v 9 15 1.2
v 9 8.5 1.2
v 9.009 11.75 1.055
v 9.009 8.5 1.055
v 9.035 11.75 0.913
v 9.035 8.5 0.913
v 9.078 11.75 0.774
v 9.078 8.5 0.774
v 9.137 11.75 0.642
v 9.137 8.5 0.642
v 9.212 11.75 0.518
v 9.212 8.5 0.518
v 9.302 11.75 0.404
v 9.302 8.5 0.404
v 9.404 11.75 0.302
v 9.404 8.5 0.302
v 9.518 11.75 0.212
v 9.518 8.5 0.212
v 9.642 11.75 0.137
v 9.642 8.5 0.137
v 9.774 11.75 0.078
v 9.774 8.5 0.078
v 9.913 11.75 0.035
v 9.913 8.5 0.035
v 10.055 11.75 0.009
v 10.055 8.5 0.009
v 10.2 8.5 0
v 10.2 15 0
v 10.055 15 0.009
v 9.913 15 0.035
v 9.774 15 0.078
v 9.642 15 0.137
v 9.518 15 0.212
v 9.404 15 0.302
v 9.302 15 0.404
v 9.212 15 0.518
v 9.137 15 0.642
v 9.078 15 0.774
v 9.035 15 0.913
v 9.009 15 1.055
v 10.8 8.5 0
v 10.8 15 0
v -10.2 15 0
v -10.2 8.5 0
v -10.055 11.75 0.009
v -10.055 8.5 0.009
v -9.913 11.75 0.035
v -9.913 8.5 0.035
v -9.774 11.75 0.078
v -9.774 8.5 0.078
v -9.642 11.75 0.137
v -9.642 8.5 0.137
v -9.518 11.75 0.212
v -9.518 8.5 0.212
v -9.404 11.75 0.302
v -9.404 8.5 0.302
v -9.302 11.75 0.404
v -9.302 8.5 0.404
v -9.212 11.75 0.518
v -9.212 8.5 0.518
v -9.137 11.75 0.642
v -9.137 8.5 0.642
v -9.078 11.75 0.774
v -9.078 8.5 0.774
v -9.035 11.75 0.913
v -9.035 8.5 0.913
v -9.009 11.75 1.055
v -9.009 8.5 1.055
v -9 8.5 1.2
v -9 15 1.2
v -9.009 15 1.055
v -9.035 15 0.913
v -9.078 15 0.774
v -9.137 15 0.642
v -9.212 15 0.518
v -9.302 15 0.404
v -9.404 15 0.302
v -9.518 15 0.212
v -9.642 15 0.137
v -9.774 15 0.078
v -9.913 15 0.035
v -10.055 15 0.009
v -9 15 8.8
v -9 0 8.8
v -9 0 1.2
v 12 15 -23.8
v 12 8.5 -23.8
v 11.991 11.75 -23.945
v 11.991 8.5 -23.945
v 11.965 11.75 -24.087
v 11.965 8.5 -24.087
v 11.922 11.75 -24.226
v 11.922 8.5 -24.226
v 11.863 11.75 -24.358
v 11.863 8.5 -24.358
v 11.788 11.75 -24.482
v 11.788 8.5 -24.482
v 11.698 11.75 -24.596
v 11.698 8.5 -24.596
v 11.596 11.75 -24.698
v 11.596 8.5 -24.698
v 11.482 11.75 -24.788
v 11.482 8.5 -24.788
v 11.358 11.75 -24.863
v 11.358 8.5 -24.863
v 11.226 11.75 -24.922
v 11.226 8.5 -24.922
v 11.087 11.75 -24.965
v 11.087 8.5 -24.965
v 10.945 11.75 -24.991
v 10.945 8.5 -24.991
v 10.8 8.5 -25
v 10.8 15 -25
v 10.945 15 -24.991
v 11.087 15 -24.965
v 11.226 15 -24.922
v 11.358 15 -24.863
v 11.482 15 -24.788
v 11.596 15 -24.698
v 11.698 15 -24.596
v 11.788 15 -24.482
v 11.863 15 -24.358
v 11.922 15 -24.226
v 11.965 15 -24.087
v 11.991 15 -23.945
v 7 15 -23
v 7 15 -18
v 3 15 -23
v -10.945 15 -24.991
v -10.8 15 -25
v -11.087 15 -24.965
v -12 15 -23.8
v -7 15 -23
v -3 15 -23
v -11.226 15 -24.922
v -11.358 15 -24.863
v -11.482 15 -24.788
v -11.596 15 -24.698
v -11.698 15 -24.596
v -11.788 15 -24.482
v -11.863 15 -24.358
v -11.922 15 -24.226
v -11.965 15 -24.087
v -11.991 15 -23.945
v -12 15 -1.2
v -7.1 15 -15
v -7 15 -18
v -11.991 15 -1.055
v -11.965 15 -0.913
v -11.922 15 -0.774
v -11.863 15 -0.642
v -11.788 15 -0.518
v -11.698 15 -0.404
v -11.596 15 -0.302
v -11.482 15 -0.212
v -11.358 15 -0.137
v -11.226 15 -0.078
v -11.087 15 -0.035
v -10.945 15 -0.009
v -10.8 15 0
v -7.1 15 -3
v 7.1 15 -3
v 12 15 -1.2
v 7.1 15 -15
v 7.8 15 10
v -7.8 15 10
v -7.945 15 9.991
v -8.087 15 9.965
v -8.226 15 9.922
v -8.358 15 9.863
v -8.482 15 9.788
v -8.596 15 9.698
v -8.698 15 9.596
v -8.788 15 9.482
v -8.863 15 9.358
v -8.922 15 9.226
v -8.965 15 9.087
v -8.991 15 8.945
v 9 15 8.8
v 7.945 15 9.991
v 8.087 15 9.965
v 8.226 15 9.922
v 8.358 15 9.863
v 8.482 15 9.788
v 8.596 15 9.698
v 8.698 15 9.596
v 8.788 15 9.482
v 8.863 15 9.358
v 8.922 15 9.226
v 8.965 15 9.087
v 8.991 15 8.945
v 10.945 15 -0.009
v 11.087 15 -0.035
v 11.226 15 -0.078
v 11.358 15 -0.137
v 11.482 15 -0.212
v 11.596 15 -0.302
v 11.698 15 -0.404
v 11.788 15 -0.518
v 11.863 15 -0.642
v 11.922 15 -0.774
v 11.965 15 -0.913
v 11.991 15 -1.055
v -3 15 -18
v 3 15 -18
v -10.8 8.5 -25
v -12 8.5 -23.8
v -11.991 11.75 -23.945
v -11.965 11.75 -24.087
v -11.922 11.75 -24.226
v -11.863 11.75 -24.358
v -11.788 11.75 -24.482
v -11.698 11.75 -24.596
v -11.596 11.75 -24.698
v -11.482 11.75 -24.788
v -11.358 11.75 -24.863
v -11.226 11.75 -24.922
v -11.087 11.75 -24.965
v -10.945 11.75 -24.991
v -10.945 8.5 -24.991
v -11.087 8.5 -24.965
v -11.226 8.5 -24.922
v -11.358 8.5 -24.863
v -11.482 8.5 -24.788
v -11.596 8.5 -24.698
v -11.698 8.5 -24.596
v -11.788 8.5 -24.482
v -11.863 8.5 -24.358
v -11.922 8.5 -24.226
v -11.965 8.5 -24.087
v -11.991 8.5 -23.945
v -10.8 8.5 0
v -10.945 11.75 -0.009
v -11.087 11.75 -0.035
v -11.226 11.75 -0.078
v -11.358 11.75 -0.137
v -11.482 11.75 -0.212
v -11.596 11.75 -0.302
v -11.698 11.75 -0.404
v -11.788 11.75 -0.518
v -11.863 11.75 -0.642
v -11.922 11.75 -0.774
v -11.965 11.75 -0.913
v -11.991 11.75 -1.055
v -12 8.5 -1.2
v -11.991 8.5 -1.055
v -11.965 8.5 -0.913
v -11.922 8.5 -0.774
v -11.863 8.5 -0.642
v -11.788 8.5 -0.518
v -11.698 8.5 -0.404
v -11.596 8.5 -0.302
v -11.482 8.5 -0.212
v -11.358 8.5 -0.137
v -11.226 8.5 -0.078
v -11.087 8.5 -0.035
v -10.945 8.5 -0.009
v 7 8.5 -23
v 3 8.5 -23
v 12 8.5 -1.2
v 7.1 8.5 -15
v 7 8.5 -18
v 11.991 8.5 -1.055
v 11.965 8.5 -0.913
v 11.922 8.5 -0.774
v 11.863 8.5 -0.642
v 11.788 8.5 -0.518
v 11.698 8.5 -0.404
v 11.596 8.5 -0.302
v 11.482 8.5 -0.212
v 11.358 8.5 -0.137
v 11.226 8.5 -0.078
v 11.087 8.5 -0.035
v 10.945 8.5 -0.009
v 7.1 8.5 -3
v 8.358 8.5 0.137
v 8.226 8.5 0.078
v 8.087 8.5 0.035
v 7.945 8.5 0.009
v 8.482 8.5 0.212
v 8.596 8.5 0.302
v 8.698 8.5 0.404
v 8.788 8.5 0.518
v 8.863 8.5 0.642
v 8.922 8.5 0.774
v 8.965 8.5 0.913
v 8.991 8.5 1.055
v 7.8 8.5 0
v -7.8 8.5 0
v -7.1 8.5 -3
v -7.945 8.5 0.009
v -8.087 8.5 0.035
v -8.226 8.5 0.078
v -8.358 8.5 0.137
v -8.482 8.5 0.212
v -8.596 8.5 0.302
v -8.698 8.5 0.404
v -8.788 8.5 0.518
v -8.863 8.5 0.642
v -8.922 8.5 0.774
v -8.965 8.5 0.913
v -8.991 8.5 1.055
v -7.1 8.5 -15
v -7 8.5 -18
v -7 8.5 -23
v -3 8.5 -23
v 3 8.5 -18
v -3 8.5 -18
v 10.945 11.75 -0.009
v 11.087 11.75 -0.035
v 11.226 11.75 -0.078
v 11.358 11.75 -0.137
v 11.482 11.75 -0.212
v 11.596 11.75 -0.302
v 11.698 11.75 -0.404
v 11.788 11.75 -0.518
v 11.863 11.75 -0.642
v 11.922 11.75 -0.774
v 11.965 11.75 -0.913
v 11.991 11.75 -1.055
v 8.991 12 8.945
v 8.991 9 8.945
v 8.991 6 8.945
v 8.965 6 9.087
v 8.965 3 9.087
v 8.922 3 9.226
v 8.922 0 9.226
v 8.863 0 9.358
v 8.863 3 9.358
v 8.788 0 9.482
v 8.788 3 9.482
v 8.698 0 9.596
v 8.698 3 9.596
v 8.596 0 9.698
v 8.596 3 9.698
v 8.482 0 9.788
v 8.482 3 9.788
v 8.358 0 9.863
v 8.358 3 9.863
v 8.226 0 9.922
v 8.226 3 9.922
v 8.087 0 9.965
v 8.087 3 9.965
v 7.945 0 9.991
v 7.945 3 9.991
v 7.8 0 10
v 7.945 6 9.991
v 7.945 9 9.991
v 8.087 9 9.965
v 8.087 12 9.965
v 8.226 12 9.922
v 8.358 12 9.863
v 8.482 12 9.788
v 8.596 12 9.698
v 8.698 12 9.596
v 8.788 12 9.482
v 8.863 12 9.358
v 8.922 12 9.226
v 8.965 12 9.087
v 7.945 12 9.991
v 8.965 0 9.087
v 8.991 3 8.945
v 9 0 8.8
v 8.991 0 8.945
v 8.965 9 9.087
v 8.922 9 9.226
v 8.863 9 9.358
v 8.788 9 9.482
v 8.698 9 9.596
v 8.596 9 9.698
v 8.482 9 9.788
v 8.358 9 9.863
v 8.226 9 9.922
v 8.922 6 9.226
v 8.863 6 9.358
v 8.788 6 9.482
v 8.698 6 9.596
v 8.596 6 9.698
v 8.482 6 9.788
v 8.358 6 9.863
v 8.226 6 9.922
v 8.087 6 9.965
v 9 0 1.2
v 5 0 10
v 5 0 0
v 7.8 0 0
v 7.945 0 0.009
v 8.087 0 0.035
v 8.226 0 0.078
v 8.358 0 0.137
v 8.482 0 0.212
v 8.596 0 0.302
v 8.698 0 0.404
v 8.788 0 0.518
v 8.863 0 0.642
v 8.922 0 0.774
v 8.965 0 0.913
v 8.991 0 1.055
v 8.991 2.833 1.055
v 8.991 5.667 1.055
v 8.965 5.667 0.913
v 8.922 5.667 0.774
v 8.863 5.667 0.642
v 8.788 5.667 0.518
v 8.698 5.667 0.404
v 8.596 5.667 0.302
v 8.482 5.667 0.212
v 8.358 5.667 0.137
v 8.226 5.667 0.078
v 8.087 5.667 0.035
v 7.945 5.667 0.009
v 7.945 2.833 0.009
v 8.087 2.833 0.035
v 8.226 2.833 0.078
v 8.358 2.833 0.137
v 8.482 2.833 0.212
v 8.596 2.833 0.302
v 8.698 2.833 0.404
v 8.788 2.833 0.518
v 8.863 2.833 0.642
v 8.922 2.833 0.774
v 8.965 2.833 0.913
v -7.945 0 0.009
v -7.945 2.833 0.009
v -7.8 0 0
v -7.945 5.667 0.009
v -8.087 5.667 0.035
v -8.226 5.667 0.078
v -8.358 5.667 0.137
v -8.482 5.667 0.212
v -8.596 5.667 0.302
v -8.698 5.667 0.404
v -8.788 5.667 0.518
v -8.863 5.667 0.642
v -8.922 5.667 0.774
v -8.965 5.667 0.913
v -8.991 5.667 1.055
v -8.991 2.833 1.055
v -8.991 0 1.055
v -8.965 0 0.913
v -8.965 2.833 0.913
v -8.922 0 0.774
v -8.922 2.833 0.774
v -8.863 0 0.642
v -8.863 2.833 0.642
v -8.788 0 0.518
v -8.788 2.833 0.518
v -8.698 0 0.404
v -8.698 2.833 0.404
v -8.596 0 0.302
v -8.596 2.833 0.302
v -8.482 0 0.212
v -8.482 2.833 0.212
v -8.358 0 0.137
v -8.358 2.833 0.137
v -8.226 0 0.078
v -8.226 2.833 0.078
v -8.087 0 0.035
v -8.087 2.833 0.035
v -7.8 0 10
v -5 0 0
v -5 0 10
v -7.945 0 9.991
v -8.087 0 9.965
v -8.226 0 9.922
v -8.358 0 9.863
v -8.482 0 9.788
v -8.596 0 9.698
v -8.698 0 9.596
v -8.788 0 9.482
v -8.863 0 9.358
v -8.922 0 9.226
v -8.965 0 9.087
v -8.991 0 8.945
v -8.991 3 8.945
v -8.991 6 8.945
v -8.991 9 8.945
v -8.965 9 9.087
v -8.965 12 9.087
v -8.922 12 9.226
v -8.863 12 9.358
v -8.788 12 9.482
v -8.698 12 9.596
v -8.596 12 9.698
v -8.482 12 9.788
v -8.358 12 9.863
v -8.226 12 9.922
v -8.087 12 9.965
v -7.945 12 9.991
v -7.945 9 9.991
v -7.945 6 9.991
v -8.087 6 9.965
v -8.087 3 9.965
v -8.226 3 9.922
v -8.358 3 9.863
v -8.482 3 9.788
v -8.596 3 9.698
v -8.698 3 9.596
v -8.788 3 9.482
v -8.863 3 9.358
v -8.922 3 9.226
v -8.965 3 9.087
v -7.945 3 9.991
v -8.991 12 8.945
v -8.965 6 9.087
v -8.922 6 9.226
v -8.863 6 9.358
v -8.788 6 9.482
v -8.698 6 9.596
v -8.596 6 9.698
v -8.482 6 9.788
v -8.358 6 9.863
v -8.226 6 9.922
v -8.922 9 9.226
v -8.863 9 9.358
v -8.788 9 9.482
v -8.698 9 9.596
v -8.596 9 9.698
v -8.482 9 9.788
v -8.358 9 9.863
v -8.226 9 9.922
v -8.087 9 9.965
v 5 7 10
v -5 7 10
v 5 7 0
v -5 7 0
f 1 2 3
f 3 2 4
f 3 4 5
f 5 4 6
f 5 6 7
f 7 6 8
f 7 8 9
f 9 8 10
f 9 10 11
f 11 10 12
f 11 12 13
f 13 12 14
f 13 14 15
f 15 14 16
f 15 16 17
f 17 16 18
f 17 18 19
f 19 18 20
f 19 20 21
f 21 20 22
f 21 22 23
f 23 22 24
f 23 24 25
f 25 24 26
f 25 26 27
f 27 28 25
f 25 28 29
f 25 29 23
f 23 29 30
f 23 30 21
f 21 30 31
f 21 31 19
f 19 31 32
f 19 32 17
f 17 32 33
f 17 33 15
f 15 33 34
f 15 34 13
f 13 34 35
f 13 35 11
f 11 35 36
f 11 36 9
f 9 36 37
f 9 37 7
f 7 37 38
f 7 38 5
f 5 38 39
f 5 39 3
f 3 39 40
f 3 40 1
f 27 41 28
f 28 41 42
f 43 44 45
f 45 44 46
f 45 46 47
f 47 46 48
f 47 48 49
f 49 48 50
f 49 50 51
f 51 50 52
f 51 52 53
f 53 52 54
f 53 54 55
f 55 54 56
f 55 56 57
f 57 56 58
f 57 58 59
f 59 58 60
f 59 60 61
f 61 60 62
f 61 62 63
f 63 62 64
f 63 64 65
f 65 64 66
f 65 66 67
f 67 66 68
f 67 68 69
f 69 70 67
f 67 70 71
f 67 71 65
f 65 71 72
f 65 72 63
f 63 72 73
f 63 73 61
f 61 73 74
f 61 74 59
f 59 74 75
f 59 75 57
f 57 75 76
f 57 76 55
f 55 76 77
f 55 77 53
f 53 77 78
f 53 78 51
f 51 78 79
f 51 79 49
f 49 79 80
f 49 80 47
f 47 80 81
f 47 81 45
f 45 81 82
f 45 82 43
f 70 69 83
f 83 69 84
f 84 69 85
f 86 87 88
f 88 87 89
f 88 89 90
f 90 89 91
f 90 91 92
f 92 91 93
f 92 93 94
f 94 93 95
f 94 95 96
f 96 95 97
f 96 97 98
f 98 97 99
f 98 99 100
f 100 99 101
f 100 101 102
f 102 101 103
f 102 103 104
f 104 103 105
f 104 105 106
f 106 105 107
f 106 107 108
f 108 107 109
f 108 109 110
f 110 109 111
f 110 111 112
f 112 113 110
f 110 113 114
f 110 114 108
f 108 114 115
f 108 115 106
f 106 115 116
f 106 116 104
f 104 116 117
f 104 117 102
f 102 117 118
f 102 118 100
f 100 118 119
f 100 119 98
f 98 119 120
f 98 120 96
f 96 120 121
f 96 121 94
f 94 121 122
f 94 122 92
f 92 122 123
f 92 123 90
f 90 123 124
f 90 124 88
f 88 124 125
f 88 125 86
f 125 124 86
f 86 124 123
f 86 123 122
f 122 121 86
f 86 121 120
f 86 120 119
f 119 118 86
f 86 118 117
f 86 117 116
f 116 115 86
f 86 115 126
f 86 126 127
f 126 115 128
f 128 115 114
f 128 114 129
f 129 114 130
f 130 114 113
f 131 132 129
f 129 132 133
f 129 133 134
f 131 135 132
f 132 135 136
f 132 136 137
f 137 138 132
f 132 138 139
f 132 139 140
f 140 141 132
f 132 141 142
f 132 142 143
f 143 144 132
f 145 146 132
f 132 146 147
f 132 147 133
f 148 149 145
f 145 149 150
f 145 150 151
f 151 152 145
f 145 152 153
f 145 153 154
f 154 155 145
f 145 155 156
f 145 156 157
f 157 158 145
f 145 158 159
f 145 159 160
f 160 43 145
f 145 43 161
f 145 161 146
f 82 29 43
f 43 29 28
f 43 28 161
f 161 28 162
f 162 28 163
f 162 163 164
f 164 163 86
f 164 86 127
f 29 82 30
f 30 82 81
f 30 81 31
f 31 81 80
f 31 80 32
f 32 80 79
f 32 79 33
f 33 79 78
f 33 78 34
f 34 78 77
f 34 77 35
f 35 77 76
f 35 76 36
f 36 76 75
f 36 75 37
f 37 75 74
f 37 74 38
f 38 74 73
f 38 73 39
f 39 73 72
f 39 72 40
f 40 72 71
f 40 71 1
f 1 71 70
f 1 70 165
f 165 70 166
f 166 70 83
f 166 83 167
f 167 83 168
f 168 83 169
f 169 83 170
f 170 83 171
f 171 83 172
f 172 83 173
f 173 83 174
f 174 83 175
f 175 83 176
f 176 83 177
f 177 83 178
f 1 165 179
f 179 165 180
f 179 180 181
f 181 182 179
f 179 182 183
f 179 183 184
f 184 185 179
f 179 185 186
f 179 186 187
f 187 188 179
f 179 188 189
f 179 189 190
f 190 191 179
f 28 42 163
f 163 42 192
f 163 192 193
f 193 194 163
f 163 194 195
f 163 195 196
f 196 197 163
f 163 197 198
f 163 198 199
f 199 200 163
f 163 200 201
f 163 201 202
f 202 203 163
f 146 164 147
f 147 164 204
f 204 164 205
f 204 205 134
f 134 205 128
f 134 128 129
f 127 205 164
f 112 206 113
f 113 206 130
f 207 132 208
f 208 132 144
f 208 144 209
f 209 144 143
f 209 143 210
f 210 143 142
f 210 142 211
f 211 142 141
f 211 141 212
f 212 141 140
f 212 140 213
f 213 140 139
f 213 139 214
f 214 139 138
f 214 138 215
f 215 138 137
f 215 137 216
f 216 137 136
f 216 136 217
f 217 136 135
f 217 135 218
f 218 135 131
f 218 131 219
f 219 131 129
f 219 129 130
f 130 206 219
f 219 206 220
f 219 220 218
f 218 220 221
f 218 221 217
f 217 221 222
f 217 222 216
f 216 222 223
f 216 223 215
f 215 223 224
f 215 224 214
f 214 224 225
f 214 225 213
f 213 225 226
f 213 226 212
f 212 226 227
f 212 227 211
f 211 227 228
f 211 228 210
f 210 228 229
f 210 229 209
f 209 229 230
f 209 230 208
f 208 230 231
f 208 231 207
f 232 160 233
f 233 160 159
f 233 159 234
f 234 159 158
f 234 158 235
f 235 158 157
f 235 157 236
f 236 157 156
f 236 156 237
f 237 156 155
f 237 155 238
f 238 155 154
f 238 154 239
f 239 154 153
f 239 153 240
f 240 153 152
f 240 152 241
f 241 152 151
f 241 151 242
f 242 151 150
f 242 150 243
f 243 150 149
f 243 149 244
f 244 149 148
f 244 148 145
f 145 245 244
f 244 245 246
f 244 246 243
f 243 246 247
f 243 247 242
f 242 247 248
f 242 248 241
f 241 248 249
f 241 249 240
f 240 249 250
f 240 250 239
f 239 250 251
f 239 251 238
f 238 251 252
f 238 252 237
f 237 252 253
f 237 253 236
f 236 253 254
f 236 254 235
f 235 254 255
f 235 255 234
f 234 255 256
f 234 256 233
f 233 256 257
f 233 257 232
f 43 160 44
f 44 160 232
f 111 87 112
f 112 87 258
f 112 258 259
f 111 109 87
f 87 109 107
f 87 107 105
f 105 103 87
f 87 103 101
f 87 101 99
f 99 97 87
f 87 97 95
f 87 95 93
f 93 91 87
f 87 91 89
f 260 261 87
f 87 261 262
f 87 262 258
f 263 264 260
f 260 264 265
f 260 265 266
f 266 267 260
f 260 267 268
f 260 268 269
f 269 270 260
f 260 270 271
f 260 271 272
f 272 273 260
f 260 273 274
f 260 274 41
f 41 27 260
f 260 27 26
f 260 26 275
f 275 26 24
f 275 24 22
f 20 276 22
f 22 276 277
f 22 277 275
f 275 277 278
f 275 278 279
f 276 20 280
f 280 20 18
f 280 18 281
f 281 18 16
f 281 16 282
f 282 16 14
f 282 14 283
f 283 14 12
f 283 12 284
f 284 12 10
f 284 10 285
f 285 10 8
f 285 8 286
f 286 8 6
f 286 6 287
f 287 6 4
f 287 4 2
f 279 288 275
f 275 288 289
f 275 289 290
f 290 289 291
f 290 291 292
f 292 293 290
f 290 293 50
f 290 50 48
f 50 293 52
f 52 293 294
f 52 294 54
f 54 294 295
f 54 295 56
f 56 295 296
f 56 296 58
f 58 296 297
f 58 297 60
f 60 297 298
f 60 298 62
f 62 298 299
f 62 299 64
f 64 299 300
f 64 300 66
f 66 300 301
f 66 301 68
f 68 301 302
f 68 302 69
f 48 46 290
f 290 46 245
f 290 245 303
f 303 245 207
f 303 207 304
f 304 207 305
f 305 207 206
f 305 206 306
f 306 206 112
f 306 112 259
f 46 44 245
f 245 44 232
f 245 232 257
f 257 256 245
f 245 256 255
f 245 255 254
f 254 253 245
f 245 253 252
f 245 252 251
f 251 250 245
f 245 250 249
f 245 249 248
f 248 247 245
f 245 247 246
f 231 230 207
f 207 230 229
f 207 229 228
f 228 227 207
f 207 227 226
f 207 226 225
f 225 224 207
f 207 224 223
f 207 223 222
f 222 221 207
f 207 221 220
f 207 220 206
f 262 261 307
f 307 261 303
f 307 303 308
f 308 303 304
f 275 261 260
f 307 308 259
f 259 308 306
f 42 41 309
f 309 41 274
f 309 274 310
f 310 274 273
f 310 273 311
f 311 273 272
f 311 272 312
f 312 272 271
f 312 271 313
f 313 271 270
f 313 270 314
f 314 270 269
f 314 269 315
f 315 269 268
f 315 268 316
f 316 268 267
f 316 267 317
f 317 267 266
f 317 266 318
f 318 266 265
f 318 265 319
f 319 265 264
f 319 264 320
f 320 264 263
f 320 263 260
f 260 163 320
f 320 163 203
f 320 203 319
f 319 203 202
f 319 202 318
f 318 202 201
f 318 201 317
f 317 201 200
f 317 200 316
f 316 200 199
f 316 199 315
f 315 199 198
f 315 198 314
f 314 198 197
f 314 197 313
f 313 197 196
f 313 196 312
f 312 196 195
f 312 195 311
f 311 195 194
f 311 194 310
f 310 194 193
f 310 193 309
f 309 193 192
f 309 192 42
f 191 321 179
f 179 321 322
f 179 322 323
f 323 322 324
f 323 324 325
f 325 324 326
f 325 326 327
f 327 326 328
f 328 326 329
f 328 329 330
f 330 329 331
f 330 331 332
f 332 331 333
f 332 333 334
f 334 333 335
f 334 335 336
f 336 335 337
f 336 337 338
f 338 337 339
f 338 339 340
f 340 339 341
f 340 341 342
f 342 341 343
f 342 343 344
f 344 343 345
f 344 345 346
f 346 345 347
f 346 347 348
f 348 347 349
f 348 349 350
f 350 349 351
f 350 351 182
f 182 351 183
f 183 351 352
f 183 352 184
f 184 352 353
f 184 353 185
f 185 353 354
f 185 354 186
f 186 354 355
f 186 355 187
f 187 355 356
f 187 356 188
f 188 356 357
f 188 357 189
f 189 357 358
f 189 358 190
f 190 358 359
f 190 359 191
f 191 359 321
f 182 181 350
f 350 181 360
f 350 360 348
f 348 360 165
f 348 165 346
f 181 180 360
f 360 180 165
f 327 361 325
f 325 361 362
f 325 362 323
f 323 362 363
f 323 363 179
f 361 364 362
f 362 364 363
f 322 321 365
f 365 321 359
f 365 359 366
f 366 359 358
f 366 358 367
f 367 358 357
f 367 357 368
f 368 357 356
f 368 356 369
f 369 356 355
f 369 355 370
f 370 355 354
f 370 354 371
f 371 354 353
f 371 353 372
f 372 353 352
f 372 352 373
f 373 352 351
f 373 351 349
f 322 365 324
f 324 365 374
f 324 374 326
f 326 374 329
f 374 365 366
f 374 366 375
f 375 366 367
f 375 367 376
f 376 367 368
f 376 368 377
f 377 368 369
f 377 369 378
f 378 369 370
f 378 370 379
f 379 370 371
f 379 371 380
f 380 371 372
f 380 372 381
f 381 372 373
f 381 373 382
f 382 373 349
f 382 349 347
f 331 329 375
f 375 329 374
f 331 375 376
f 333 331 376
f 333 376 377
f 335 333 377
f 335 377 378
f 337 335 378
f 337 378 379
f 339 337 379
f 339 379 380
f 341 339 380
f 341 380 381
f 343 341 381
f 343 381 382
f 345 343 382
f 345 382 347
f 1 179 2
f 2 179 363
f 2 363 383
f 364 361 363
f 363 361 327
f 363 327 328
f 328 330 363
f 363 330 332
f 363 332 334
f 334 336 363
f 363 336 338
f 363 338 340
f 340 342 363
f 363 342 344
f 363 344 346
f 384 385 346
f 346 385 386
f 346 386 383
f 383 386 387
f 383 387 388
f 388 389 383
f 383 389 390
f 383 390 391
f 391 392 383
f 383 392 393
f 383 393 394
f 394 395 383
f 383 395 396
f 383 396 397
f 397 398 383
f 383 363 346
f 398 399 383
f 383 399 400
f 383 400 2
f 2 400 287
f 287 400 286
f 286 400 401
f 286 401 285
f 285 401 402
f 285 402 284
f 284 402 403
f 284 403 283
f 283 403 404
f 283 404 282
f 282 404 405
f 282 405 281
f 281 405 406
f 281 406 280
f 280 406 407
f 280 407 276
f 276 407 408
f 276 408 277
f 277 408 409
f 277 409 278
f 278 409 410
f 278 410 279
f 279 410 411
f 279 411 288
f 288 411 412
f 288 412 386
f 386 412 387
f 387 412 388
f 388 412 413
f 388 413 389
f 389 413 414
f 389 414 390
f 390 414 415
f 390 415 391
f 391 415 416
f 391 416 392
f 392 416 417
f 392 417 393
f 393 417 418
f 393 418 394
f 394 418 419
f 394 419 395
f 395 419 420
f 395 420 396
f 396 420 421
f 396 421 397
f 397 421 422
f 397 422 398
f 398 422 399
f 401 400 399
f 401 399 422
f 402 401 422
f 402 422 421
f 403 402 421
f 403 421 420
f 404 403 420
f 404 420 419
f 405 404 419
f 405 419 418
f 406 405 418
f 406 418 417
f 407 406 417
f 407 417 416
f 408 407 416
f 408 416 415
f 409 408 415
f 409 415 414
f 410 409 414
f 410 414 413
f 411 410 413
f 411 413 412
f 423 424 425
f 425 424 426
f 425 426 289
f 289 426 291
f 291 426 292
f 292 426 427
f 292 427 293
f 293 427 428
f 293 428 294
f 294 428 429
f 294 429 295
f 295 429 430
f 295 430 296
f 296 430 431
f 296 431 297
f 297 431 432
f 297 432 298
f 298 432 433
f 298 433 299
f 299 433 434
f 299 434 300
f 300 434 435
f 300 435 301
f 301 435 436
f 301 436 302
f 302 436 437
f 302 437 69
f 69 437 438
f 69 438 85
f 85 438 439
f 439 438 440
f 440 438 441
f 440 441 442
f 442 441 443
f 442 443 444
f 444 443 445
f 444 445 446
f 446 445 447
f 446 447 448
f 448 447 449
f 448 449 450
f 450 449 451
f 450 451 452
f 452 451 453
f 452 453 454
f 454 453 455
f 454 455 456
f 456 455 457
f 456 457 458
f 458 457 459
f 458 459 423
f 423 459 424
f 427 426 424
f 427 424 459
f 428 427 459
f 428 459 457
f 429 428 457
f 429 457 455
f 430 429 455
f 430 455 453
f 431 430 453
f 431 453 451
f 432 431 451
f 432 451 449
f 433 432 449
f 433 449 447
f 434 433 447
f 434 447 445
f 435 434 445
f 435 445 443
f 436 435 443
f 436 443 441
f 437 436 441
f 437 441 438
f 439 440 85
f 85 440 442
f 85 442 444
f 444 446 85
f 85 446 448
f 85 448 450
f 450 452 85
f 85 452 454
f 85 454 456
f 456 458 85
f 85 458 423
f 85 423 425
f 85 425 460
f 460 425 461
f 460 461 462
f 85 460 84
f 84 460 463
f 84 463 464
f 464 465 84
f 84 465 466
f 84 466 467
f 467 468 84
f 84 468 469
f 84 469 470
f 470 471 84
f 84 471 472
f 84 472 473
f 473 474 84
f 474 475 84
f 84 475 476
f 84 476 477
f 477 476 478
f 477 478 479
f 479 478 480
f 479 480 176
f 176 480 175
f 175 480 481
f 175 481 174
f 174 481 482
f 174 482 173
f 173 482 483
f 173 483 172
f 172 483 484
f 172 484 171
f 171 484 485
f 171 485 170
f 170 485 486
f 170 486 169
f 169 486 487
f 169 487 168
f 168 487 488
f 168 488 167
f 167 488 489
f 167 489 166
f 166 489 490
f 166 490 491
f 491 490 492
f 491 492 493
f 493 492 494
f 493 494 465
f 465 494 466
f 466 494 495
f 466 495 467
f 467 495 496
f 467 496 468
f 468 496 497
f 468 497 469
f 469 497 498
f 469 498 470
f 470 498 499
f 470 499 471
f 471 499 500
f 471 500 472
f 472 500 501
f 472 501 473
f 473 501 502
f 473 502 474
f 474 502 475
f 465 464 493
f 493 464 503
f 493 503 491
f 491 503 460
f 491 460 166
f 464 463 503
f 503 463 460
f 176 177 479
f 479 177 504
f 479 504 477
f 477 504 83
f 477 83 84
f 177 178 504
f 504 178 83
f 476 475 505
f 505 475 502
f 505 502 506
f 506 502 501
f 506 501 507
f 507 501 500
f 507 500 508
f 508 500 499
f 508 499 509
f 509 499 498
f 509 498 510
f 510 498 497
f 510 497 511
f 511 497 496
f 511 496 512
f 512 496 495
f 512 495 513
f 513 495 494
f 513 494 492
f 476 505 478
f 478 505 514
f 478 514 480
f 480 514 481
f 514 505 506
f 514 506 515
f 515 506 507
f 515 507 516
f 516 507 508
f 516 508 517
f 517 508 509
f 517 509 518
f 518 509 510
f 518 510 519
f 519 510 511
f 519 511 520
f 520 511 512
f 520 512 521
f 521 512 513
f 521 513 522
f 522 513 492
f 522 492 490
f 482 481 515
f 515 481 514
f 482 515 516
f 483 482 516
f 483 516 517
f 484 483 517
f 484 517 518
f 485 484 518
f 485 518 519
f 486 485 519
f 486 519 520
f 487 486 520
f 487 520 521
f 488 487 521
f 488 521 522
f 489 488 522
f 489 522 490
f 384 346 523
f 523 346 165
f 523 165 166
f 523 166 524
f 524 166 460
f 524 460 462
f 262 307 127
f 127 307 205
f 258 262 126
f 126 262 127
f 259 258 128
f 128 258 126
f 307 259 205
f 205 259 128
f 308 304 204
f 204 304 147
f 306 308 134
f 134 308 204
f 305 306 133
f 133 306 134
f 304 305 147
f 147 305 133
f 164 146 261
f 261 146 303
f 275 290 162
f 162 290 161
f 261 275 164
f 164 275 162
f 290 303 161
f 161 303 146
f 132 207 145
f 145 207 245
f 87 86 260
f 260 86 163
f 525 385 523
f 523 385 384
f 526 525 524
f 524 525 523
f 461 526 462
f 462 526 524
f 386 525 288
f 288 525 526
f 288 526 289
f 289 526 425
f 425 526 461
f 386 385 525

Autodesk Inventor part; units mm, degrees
ref_plane "YZ Plane" through (0, 0, 0) normal (1, 0, 0) x (0, 1, 0)
ref_plane "XZ Plane" through (0, 0, 0) normal (0, 1, 0) x (-1, 0, 0)
ref_plane "XY Plane" through (0, 0, 0) normal (0, 0, 1) x (1, 0, 0)
sketch "Náčrt1" plane through (0, 0, 0) normal (0, 0, 1) x (1, 0, 0)
  line L0 (-9, 0) -> (-5, 0)
  line L1 (-5, 0) -> (-5, 7)
  line L2 (-5, 7) -> (5, 7)
  line L3 (5, 7) -> (5, 0)
  line L4 (9, 0) -> (9, 15)
  line L5 (9, 15) -> (-9, 15)
  line L6 (-9, 15) -> (-9, 0)
  line L7 (5, 0) -> (9, 0)
  point P0 (0, 0)
  dimension "d0" = 10
  dimension "d1" = 4
  dimension "d2" = 4
  dimension "d3" = 5
  dimension "d4" = 7
  dimension "d5" = 7
  dimension "d8" = 8
extrude "Vysunutí1" add sketch "Náčrt1" along normal blind 10
sketch "Náčrt2" plane through (0, 0, 0) normal (0, 0, -1) x (-1, 0, 0)
  line L0 (5, 7) -> (-5, 7) projected
  line L1 (-12, 15) -> (12, 15)
  line L2 (12, 15) -> (12, 8.5)
  line L3 (12, 8.5) -> (-12, 8.5)
  line L4 (-12, 8.5) -> (-12, 15)
  line L5 (-9, 15) -> (9, 15) projected
  line L6 (-9, 0) -> (-9, 15) projected
  line L7 (9, 15) -> (9, 0) projected
  point P0 (0, 0)
  dimension "d19" = 1.5
  dimension "d20" = 3
  dimension "d21" = 3
extrude "Vysunutí4" add sketch "Náčrt2" along normal blind 15
sketch "Náčrt4" plane through (-9, 15, 10) normal (0, 1, 0) x (1, 0, 0)
  line L0 (21, 25) -> (-3, 25) projected
  line L1 (1.9, 25) -> (16.1, 25)
  line L2 (16.1, 25) -> (16.1, 13)
  line L3 (16.1, 13) -> (1.9, 13)
  line L4 (1.9, 13) -> (1.9, 25)
  line L5 (21, 10) -> (21, 25) projected
  line L6 (-3, 10) -> (-3, 25) projected
  point P0 (9, 10)
  dimension "d24" = 12
  dimension "d25" = 4.9
  dimension "d26" = 4.9
extrude "Vysunutí5" cut sketch "Náčrt4" against normal blind 15
sketch "Náčrt5" plane through (0, 0, -15) normal (0, 0, -1) x (-1, 0, 0)
  line L0 (-7.1, 15) -> (-12, 15) projected
  line L1 (12, 8.5) -> (12, 15) projected
  line L2 (-12, 15) -> (12, 15)
  line L3 (12, 15) -> (12, 8.5)
  line L4 (12, 8.5) -> (-12, 8.5)
  line L5 (-12, 8.5) -> (-12, 15)
  point P0 (0, 0)
extrude "Vysunutí6" add sketch "Náčrt5" along normal blind 10
sketch "Náčrt6" plane through (-9, 15, 10) normal (0, 1, 0) x (1, 0, 0)
  line L0 (2, 28) -> (6, 28)
  line L1 (6, 28) -> (6, 33)
  line L2 (6, 33) -> (2, 33)
  line L3 (2, 33) -> (2, 28)
  line L4 (12, 28) -> (16, 28)
  line L5 (16, 28) -> (16, 33)
  line L6 (16, 33) -> (12, 33)
  line L7 (12, 33) -> (12, 28)
  line L8 (-3, 10) -> (-3, 35) projected
  line L9 (21, 10) -> (21, 35) projected
  line L10 (1.9, 25) -> (16.1, 25) projected
  line L11 (-3, 35) -> (21, 35) projected
  point P0 (9, 10)
  dimension "d33" = 3
  dimension "d34" = 3
  dimension "d35" = 2
  dimension "d36" = 2
  dimension "d38" = 4
  dimension "d39" = 4
  dimension "d45" = 6
  dimension "d46" = 5
  dimension "d47" = 5
extrude "Vysunutí7" cut sketch "Náčrt6" against normal blind 10
fillet "Zaoblení2" radius 1.2 10 edges at (-9, 7.5, 10) (-9, 4.25, 0) (9, 4.25, 0) (9, 7.5, 10) (9, 11.75, 0) (12, 11.75, 0) (-9, 11.75, 0) (-12, 11.75, 0) (-12, 11.75, -25) (12, 11.75, -25)
equation "\"d2\" = d1"
equation "\"d3\" = 0.5 * d0"
equation "\"d5\" = d4"
equation "\"d21\" = d20"
equation "\"d26\" = d25"
equation "\"d34\" = d33"
equation "\"d36\" = d35"
equation "\"d39\" = d38"
properties part number "QRholder-bottom"
